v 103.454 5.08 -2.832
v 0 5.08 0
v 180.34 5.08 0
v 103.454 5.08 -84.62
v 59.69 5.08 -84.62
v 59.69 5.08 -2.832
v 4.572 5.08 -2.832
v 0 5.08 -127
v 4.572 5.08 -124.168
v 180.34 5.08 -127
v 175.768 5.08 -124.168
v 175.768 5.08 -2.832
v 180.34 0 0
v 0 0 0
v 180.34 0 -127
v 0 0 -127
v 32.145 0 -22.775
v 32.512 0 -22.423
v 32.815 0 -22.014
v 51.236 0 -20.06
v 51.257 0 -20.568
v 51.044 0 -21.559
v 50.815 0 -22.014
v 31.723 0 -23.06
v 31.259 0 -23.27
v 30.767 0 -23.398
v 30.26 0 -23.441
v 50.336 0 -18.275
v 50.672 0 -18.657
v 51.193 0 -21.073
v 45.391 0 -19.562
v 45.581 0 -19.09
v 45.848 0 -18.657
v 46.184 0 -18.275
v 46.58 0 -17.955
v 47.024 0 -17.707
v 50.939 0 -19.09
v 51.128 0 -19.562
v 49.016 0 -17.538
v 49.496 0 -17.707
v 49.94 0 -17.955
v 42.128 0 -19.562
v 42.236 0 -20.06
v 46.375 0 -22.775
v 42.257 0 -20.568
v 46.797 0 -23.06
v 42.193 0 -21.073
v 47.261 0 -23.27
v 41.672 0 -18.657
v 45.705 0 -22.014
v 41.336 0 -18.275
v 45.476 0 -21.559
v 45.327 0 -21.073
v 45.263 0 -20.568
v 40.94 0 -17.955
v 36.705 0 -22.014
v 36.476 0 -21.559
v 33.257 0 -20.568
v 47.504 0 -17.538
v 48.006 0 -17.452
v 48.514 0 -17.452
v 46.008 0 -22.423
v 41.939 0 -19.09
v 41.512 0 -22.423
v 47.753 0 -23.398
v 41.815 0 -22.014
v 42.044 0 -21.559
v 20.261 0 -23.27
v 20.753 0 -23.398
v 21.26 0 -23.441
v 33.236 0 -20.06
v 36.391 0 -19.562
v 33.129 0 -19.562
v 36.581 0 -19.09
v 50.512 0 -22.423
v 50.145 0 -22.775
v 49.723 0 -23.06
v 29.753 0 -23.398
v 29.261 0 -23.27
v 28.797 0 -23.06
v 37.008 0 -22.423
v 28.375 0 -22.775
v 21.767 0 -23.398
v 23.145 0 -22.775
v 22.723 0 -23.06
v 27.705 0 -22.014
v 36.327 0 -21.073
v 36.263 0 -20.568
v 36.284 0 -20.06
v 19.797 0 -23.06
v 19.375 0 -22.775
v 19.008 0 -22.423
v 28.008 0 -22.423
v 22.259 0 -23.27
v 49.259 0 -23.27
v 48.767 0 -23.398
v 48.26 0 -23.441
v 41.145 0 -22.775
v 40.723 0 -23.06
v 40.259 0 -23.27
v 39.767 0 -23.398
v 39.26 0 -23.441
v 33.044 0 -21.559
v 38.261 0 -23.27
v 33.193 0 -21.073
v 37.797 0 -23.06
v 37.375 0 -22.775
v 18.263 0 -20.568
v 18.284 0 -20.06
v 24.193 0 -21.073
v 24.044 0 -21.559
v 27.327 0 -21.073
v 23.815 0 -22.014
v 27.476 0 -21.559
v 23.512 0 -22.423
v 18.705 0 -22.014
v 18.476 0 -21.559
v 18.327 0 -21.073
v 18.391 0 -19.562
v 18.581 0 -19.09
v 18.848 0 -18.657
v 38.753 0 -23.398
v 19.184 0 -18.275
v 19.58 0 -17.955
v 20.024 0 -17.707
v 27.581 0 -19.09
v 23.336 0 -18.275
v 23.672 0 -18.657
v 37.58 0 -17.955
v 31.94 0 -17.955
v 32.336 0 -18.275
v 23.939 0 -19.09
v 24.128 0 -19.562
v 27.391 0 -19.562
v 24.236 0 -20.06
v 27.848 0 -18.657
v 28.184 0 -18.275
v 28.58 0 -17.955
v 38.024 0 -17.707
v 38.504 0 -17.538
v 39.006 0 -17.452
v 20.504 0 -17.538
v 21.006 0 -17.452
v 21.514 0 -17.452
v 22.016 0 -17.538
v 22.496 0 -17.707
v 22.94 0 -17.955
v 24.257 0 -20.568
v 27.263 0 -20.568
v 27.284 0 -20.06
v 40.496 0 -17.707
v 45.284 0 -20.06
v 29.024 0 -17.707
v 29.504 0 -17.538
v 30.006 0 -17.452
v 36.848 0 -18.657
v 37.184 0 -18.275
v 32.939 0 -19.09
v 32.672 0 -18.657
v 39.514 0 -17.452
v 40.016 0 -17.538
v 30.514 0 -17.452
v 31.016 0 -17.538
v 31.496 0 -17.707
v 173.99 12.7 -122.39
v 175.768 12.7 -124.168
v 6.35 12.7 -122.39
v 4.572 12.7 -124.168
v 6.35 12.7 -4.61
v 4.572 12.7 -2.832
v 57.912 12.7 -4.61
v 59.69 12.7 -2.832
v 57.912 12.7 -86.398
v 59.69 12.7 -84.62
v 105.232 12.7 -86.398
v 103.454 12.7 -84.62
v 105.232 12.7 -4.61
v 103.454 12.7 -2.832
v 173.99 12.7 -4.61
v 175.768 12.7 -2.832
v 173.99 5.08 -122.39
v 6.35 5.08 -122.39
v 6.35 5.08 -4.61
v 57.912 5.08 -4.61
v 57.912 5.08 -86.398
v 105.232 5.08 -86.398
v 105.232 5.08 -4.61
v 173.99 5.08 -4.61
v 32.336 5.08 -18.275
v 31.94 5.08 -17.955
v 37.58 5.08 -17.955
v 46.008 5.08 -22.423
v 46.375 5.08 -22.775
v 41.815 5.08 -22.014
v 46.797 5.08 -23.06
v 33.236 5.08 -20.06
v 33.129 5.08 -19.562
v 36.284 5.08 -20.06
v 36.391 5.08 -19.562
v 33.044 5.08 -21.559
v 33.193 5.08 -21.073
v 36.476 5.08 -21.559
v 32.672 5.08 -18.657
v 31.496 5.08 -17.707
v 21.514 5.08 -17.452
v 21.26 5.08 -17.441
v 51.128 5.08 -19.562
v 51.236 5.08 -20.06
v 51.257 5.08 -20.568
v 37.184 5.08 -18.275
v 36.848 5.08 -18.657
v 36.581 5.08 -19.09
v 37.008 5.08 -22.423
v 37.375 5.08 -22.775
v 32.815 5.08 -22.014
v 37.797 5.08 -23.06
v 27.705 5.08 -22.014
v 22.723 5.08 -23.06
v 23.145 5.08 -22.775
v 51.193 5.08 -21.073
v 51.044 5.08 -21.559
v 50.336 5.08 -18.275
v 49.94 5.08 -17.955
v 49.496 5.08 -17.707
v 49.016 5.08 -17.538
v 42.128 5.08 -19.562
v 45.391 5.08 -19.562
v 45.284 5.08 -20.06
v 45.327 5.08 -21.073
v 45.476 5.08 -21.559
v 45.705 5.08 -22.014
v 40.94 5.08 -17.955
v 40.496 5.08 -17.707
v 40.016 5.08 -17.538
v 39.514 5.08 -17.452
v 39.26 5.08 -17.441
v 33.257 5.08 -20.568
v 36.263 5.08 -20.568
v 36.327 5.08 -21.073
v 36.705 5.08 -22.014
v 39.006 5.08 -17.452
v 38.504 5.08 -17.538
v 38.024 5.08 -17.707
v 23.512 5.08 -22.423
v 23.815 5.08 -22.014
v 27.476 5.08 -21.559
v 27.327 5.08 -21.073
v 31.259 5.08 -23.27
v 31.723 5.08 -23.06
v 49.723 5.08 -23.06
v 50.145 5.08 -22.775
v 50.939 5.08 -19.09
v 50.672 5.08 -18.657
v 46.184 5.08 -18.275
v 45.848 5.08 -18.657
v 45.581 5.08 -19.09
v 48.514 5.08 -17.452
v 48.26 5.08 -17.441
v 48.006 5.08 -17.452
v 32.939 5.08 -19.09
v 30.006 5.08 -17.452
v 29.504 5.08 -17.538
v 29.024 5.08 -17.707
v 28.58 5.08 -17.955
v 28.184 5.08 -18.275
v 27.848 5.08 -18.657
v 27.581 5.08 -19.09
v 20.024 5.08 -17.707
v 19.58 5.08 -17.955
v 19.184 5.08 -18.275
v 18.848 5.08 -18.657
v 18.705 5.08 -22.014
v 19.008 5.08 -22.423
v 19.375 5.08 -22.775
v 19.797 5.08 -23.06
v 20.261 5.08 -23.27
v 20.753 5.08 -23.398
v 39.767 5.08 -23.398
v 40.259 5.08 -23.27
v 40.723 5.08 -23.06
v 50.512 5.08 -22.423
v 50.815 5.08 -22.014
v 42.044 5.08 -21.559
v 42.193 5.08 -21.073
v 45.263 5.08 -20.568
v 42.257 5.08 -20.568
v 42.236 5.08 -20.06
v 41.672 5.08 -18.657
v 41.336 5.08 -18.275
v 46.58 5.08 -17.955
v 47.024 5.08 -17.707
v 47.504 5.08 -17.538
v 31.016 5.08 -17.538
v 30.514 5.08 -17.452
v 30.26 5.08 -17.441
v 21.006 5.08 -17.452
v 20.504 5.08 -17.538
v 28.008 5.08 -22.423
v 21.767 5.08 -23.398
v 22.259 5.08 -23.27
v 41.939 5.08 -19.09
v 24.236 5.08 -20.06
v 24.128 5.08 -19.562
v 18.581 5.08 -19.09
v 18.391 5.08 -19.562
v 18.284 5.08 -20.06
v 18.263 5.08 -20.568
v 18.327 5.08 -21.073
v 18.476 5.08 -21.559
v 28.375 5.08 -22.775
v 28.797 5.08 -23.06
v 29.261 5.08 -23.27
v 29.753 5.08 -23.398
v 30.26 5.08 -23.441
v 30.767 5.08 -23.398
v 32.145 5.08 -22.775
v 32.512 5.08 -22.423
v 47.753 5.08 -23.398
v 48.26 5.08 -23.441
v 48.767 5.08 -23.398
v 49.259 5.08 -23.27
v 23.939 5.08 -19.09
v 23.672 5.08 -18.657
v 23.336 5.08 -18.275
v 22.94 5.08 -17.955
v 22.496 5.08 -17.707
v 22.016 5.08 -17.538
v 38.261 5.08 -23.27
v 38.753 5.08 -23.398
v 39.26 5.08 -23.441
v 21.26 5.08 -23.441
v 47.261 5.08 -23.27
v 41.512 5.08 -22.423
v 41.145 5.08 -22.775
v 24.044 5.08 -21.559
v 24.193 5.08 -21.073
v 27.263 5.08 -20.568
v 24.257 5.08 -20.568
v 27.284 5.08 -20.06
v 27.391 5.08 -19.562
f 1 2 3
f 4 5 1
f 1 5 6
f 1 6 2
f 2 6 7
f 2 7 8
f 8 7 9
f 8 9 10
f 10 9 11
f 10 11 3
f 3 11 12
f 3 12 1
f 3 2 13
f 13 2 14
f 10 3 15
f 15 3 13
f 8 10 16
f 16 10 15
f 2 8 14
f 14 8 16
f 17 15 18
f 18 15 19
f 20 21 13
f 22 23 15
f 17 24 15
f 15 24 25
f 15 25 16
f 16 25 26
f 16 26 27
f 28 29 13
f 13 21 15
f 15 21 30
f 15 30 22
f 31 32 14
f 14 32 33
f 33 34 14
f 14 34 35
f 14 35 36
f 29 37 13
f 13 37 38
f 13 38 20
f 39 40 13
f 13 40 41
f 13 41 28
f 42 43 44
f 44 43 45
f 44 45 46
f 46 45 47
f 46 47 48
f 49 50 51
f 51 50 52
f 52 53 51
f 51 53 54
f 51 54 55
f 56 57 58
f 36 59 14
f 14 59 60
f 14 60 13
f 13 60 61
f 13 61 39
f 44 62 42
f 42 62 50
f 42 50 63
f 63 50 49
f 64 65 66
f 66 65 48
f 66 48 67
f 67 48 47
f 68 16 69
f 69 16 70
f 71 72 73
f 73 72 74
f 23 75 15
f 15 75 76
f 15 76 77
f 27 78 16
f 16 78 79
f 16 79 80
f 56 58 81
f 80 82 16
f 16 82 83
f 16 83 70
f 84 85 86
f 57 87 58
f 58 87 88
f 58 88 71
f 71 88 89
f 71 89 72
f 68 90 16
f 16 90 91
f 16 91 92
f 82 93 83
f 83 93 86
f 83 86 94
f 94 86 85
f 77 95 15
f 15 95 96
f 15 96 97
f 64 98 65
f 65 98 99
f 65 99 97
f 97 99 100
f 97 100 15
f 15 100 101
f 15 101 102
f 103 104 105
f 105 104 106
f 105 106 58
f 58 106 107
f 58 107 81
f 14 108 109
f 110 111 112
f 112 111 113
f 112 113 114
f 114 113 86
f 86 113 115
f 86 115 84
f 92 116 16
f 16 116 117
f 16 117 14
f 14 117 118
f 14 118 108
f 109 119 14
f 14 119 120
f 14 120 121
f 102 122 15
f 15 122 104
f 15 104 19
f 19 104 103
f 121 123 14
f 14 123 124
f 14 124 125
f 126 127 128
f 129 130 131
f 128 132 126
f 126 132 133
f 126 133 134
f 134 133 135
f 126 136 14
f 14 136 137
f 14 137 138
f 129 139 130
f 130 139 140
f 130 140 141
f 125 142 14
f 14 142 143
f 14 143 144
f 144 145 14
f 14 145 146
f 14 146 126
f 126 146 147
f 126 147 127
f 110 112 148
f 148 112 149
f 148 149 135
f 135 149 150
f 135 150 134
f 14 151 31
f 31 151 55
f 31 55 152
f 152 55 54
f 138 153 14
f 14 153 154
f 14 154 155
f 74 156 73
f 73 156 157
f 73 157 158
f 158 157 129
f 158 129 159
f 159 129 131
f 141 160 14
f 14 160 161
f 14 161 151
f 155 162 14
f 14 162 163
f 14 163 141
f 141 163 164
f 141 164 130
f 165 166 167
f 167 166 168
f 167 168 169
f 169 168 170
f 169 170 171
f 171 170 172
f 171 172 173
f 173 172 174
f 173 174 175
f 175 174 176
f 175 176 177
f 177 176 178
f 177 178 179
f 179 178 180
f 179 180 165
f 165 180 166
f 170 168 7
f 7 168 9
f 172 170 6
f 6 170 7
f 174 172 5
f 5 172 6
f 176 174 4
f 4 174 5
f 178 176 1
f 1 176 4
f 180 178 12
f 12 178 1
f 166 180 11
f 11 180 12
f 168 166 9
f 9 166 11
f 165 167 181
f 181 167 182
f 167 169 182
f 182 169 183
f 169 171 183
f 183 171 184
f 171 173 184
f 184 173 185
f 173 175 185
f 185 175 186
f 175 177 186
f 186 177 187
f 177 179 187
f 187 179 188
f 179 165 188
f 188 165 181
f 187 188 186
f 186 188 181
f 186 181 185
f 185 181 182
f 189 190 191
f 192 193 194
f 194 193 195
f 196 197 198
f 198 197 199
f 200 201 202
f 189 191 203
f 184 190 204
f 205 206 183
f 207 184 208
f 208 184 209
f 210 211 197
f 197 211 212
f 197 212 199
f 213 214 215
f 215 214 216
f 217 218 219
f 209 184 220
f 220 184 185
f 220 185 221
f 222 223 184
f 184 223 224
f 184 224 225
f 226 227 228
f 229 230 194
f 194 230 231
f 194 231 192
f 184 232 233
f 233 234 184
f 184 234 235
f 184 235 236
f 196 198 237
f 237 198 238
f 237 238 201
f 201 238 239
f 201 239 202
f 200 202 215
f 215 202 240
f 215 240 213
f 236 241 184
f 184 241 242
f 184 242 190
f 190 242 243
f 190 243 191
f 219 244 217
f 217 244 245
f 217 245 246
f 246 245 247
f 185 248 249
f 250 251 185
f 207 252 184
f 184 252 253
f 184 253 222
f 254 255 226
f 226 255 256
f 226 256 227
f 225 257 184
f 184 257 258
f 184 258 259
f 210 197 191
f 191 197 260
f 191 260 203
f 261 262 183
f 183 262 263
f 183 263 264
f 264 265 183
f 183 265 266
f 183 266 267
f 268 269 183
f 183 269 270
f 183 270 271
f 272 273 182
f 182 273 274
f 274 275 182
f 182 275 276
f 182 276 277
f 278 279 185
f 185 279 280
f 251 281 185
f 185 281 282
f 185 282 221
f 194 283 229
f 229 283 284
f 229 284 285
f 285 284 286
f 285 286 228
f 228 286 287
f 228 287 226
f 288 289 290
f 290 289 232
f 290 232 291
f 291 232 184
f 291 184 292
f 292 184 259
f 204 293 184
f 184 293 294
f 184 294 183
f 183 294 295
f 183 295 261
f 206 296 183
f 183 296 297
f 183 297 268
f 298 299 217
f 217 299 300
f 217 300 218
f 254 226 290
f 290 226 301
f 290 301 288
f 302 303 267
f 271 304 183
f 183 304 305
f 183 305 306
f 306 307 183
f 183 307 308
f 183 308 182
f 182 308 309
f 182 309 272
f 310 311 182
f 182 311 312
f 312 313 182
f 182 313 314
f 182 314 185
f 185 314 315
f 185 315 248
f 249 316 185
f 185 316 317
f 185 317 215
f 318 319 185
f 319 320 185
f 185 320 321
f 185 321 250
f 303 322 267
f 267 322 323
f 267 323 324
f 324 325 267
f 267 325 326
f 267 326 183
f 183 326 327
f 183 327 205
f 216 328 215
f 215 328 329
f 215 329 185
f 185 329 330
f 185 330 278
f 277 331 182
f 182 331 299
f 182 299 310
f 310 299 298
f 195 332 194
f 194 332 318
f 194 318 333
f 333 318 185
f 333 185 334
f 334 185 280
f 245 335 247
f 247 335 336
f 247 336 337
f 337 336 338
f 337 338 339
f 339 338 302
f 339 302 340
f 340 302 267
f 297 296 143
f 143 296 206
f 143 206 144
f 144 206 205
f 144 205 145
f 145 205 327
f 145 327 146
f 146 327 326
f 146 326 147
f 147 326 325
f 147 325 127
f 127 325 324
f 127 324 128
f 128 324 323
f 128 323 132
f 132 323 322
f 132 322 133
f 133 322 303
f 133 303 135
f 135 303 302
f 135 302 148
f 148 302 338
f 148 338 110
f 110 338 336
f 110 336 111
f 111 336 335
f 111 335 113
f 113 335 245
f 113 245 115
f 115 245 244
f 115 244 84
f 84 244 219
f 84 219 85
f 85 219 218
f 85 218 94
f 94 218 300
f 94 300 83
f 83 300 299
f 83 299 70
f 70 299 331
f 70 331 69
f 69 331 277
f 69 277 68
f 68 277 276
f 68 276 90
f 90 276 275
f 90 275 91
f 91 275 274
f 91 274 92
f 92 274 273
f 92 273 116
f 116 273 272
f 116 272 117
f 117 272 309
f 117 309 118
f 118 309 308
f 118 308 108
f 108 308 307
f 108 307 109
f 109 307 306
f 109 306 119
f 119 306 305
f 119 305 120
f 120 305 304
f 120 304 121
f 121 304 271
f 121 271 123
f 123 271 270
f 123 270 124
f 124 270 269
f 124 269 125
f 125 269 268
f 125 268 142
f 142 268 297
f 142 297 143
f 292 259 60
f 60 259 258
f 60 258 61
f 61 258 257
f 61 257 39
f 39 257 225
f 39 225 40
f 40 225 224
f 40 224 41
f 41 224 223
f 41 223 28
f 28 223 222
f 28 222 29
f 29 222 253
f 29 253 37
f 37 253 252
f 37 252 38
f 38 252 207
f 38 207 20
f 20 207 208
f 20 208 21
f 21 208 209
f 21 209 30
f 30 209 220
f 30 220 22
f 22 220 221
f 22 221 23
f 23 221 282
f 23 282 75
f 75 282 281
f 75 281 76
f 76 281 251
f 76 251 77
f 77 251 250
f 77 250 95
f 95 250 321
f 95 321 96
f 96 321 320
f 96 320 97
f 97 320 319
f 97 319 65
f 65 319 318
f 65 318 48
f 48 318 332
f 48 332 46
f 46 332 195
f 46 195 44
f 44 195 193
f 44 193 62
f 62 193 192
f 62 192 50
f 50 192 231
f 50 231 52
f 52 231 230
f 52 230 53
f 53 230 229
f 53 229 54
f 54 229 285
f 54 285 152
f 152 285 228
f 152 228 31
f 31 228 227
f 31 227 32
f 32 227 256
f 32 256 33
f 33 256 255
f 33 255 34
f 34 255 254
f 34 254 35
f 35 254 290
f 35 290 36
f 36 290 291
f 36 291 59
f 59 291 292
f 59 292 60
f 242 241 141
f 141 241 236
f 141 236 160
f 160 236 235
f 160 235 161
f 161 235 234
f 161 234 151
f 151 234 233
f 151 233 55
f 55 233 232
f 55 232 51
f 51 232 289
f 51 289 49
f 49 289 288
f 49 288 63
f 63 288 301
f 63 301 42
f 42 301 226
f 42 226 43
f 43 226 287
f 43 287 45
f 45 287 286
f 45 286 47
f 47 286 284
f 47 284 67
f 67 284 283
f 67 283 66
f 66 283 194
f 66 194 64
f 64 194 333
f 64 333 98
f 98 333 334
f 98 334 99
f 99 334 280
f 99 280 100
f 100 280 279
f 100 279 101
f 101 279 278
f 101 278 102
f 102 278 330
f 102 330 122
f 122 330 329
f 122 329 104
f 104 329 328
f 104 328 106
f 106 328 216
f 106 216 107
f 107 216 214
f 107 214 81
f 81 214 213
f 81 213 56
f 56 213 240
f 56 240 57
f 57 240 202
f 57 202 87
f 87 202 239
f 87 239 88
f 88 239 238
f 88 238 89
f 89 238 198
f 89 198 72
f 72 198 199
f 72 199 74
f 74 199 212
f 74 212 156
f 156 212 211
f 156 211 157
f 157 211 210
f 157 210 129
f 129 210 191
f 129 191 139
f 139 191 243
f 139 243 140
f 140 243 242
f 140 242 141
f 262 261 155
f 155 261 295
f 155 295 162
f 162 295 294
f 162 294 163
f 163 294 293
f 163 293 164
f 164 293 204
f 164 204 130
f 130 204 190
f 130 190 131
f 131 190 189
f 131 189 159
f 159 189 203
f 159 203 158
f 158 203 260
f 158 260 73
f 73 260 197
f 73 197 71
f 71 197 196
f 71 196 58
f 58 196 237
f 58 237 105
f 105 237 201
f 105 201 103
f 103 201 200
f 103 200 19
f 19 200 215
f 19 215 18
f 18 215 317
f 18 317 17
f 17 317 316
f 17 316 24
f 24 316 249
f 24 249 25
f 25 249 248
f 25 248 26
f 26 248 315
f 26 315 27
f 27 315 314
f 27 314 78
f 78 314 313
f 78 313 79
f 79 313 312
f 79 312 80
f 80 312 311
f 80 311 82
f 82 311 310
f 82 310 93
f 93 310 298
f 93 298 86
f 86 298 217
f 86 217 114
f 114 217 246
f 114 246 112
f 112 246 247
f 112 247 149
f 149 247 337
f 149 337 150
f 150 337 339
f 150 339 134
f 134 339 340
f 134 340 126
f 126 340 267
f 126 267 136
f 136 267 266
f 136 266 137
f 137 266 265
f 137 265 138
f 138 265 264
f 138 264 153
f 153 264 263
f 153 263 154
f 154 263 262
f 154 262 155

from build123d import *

# Parameters (mm, degrees)
SKETCH1_W           = 180.34
SKETCH1_H           = 127
BOSS_EXTRUDE1_DEPTH = 5.08
BOSS_EXTRUDE2_DEPTH = 7.62
SKETCH3_R           = 3
CUT_EXTRUDE1_DEPTH  = 10.16


with BuildPart() as part:
    # Sketch1 → Boss-Extrude1 (new body)
    with BuildSketch(Plane(origin=(0, 0, 0), x_dir=(1, 0, 0), z_dir=(0, 1, 0))):
        with Locations((90.17, 63.5)):
            Rectangle(SKETCH1_W, SKETCH1_H)
    extrude(amount=BOSS_EXTRUDE1_DEPTH)

    # Sketch2 → Boss-Extrude2 (add)
    with BuildSketch(Plane(origin=(0, 5.08, 0), x_dir=(1, 0, 0), z_dir=(0, 1, 0))):
        Polygon((4.572, 124.1679), (175.768, 124.1679), (175.768, 2.8321), (103.4542, 2.8321), (103.4542, 84.6201), (59.69, 84.6201), (59.69, 2.8321), (4.572, 2.8321), align=None)
        Polygon((6.35, 122.3899), (6.35, 4.6101), (57.912, 4.6101), (57.912, 86.3981), (105.2322, 86.3981), (105.2322, 4.6101), (173.99, 4.6101), (173.99, 122.3899), align=None, mode=Mode.SUBTRACT)
    extrude(amount=BOSS_EXTRUDE2_DEPTH)

    # Sketch3 → Cut-Extrude1 (cut)
    with BuildSketch(Plane.XZ):
        with Locations((21.26, -20.440905976)):
            Circle(SKETCH3_R)
        with Locations((30.26, -20.440905976)):
            Circle(SKETCH3_R)
        with Locations((39.26, -20.440905976)):
            Circle(SKETCH3_R)
        with Locations((48.26, -20.440905976)):
            Circle(SKETCH3_R)
    extrude(amount=-CUT_EXTRUDE1_DEPTH, mode=Mode.SUBTRACT)


solid = part.part
